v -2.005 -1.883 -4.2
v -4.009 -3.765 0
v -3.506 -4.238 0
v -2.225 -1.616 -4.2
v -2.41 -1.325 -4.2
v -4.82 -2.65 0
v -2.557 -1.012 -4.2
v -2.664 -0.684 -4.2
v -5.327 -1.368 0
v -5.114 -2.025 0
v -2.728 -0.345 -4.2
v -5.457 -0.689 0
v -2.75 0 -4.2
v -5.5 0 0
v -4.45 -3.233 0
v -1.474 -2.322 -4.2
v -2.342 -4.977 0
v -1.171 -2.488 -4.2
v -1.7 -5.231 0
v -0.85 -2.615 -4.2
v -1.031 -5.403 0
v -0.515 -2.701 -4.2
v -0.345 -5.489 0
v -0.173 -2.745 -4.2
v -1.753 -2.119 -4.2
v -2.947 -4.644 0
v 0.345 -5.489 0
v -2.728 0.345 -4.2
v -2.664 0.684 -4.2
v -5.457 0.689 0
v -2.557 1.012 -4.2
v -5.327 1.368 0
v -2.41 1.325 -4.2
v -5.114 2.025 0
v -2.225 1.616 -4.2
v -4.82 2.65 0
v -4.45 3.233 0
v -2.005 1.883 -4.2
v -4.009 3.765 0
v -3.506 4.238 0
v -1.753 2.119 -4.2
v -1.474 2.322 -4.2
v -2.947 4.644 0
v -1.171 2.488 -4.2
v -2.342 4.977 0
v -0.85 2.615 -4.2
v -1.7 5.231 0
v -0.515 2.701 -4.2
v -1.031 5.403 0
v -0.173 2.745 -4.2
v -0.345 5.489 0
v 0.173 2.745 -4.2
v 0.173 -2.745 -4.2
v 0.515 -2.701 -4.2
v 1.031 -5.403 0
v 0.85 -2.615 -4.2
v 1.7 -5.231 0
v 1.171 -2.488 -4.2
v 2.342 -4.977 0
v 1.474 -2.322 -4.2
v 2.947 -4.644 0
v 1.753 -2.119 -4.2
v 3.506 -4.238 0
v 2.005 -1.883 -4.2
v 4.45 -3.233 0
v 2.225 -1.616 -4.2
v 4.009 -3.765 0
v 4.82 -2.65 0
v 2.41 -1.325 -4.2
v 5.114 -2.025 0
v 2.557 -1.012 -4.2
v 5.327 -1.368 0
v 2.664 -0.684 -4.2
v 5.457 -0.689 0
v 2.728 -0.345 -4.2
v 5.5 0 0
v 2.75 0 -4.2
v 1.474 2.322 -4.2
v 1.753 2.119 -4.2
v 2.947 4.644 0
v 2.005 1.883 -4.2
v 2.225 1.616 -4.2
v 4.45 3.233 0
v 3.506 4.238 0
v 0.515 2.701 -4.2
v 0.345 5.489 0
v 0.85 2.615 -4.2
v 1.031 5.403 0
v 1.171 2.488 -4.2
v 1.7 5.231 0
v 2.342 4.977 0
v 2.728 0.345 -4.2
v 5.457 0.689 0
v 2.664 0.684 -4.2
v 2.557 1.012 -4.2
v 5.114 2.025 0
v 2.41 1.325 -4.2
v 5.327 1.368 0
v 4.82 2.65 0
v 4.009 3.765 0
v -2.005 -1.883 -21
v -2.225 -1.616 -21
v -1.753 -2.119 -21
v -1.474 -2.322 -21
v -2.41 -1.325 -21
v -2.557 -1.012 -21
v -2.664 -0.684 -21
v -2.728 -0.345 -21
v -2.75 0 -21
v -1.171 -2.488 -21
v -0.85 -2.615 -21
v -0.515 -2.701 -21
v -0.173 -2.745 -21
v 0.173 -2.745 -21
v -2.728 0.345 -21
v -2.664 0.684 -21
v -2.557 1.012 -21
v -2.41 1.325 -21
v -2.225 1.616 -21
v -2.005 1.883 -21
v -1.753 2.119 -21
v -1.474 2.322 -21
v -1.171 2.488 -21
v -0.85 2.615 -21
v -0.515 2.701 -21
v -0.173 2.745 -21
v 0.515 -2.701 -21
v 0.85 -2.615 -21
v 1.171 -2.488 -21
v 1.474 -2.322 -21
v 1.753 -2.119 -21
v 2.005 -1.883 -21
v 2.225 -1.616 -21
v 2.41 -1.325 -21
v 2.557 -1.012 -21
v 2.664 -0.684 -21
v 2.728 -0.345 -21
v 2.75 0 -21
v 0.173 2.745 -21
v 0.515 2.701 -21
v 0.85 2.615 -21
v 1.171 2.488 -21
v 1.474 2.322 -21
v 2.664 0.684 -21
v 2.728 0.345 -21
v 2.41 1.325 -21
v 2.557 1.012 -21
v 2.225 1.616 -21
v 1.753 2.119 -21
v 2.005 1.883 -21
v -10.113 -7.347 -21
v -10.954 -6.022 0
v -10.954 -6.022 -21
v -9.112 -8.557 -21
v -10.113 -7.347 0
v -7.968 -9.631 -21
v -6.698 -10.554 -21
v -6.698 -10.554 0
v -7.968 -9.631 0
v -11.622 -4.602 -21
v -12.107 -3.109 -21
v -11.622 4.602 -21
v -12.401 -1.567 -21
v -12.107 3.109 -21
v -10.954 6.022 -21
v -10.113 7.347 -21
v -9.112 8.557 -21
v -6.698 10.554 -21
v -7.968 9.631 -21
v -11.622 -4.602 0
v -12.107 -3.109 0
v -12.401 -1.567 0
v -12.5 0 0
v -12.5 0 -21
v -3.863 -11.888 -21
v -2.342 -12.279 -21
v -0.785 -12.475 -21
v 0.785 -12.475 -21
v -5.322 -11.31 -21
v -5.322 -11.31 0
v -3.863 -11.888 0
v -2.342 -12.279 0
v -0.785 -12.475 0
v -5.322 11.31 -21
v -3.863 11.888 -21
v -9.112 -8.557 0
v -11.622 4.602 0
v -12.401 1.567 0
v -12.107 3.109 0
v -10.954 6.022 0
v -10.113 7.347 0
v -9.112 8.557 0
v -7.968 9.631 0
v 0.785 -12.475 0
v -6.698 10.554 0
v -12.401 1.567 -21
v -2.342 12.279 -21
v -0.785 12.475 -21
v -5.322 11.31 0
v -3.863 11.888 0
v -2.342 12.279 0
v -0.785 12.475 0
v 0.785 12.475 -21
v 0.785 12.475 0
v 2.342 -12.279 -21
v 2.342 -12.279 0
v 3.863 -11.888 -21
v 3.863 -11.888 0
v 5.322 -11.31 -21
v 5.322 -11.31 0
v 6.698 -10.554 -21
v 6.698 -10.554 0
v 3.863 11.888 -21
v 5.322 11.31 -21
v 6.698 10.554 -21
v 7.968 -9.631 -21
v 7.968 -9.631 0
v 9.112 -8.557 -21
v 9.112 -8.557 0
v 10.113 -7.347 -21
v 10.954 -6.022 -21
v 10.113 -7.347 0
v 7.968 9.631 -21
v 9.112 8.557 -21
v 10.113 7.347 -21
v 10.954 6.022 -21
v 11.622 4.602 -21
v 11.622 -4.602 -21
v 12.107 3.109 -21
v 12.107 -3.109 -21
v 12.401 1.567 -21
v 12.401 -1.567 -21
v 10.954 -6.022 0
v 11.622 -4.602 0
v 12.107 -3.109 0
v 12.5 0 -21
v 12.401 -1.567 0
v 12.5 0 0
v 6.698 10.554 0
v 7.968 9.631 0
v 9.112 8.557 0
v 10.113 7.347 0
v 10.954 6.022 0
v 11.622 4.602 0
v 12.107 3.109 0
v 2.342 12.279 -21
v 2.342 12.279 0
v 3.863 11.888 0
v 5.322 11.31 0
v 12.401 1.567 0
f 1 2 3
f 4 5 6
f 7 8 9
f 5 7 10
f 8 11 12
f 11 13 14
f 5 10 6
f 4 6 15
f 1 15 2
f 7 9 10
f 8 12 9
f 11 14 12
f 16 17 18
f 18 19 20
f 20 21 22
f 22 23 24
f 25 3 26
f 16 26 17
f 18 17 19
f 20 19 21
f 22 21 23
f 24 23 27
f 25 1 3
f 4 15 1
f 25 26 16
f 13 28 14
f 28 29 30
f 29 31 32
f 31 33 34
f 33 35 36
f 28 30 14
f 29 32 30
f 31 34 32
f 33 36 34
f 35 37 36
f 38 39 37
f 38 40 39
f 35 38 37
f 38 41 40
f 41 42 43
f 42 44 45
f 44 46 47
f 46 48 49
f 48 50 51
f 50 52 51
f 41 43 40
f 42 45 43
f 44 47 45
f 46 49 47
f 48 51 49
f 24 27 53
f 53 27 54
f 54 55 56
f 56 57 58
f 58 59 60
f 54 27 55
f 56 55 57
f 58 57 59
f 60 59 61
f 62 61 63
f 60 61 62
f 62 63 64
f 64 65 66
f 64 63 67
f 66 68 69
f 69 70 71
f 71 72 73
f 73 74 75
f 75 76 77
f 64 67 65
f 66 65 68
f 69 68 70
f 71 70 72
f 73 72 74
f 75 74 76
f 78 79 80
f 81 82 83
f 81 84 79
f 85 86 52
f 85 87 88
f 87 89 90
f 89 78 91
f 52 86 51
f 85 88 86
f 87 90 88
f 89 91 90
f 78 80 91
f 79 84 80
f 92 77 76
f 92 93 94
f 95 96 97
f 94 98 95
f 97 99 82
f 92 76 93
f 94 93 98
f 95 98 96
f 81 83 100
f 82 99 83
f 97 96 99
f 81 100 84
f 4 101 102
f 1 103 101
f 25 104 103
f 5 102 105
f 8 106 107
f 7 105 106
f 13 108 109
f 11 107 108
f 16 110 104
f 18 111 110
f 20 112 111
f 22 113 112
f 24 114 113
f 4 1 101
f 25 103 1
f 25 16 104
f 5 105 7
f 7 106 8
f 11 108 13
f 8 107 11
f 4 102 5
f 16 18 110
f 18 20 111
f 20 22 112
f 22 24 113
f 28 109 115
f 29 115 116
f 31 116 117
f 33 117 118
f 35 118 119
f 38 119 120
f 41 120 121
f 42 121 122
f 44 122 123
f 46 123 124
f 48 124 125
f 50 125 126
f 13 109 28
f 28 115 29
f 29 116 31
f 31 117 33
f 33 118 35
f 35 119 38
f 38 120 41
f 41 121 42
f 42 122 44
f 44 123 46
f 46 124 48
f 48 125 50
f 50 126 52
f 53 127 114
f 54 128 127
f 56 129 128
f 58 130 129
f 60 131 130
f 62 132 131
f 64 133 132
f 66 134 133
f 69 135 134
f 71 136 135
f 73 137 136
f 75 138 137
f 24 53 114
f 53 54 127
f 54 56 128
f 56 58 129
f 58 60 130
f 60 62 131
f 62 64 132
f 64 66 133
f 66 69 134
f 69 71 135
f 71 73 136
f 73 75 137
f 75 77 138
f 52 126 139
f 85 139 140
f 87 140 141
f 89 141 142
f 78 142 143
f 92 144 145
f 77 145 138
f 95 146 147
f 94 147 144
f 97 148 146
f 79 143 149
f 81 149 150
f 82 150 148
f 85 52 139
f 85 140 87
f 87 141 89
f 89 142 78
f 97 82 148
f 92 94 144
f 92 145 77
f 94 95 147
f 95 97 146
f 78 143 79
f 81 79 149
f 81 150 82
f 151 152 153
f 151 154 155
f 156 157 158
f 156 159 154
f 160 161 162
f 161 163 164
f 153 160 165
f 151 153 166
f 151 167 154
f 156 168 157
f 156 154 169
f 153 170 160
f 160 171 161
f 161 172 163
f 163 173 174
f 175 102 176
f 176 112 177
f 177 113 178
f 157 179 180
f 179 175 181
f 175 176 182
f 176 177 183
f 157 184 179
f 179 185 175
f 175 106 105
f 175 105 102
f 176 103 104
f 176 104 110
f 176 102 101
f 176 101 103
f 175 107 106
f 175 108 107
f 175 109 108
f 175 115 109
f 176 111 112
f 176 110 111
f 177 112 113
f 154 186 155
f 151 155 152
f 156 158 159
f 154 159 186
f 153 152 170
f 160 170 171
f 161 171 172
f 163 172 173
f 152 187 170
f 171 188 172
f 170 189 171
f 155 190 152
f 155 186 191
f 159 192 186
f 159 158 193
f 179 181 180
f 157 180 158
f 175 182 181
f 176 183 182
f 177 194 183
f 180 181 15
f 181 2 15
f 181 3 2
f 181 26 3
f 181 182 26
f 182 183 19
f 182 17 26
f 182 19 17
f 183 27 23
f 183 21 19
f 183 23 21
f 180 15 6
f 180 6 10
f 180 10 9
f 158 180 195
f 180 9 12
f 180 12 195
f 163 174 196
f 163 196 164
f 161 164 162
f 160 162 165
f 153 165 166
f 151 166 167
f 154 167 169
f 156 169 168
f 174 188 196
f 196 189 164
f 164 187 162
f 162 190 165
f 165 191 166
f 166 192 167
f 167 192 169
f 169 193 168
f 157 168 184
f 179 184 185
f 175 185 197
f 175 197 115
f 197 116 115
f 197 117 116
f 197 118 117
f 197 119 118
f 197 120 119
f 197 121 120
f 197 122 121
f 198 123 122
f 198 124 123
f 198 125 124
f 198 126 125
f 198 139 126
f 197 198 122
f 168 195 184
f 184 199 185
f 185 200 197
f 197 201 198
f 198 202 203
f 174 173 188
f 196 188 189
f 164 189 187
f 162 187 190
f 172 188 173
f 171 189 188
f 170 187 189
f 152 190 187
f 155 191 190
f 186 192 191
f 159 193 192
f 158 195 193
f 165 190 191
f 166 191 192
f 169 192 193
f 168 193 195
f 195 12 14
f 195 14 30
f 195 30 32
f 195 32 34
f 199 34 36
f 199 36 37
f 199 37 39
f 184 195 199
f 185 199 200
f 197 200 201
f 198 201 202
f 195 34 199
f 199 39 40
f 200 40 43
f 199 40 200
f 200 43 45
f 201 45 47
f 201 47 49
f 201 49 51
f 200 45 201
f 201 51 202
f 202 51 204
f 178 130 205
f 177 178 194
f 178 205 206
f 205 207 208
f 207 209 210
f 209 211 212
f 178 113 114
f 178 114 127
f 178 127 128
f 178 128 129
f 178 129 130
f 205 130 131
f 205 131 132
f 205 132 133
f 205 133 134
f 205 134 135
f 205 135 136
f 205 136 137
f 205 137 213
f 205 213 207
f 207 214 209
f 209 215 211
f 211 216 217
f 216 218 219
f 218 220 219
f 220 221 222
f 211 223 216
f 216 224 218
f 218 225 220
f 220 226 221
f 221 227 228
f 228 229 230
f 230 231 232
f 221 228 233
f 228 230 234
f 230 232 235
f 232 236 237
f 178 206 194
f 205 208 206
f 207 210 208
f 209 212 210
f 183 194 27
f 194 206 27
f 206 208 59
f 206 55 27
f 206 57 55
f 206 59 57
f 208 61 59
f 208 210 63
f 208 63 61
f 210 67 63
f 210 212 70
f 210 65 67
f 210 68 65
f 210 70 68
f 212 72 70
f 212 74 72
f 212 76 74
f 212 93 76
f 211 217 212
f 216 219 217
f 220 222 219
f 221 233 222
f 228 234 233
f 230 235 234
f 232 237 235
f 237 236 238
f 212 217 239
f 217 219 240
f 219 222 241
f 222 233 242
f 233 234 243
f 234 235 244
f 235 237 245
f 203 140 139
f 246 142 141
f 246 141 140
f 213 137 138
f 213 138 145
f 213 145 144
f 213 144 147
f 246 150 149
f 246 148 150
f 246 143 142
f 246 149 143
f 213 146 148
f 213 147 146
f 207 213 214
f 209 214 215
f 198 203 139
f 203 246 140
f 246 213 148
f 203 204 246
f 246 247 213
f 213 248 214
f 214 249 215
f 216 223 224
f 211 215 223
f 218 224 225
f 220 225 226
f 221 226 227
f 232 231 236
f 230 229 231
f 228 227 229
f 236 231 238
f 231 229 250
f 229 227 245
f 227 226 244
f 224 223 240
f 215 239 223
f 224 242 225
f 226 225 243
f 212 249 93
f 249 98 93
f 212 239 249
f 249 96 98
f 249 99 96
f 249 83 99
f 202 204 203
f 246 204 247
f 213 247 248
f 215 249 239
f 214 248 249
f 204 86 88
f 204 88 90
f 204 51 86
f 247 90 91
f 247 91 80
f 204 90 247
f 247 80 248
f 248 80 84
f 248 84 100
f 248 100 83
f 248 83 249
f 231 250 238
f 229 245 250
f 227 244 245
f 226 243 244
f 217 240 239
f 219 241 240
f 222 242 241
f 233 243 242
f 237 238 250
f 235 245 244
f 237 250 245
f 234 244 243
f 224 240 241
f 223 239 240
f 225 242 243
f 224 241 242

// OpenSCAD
$fn = 50;

difference() {
	union() {
		translate(v = [0, 0, -21.0]) {
			cylinder(h = 21, r = 12.5);
		}
	}
	union() {
		translate(v = [0, 0, 0]) {
			rotate(a = [0, 0, 0]) {
				difference() {
					union() {
						translate(v = [0, 0, -24.0]) {
							cylinder(h = 24, r = 2.25);
						}
						translate(v = [0, 0, -4.2]) {
							cylinder(h = 4.2, r1 = 2.75, r2 = 5.5);
						}
						translate(v = [0, 0, -24.0]) {
							cylinder(h = 24, r = 2.75);
						}
						translate(v = [0, 0, -24.0]) {
							cylinder(h = 24, r = 2.25);
						}
					}
					union();
				}
			}
		}
	}
}
